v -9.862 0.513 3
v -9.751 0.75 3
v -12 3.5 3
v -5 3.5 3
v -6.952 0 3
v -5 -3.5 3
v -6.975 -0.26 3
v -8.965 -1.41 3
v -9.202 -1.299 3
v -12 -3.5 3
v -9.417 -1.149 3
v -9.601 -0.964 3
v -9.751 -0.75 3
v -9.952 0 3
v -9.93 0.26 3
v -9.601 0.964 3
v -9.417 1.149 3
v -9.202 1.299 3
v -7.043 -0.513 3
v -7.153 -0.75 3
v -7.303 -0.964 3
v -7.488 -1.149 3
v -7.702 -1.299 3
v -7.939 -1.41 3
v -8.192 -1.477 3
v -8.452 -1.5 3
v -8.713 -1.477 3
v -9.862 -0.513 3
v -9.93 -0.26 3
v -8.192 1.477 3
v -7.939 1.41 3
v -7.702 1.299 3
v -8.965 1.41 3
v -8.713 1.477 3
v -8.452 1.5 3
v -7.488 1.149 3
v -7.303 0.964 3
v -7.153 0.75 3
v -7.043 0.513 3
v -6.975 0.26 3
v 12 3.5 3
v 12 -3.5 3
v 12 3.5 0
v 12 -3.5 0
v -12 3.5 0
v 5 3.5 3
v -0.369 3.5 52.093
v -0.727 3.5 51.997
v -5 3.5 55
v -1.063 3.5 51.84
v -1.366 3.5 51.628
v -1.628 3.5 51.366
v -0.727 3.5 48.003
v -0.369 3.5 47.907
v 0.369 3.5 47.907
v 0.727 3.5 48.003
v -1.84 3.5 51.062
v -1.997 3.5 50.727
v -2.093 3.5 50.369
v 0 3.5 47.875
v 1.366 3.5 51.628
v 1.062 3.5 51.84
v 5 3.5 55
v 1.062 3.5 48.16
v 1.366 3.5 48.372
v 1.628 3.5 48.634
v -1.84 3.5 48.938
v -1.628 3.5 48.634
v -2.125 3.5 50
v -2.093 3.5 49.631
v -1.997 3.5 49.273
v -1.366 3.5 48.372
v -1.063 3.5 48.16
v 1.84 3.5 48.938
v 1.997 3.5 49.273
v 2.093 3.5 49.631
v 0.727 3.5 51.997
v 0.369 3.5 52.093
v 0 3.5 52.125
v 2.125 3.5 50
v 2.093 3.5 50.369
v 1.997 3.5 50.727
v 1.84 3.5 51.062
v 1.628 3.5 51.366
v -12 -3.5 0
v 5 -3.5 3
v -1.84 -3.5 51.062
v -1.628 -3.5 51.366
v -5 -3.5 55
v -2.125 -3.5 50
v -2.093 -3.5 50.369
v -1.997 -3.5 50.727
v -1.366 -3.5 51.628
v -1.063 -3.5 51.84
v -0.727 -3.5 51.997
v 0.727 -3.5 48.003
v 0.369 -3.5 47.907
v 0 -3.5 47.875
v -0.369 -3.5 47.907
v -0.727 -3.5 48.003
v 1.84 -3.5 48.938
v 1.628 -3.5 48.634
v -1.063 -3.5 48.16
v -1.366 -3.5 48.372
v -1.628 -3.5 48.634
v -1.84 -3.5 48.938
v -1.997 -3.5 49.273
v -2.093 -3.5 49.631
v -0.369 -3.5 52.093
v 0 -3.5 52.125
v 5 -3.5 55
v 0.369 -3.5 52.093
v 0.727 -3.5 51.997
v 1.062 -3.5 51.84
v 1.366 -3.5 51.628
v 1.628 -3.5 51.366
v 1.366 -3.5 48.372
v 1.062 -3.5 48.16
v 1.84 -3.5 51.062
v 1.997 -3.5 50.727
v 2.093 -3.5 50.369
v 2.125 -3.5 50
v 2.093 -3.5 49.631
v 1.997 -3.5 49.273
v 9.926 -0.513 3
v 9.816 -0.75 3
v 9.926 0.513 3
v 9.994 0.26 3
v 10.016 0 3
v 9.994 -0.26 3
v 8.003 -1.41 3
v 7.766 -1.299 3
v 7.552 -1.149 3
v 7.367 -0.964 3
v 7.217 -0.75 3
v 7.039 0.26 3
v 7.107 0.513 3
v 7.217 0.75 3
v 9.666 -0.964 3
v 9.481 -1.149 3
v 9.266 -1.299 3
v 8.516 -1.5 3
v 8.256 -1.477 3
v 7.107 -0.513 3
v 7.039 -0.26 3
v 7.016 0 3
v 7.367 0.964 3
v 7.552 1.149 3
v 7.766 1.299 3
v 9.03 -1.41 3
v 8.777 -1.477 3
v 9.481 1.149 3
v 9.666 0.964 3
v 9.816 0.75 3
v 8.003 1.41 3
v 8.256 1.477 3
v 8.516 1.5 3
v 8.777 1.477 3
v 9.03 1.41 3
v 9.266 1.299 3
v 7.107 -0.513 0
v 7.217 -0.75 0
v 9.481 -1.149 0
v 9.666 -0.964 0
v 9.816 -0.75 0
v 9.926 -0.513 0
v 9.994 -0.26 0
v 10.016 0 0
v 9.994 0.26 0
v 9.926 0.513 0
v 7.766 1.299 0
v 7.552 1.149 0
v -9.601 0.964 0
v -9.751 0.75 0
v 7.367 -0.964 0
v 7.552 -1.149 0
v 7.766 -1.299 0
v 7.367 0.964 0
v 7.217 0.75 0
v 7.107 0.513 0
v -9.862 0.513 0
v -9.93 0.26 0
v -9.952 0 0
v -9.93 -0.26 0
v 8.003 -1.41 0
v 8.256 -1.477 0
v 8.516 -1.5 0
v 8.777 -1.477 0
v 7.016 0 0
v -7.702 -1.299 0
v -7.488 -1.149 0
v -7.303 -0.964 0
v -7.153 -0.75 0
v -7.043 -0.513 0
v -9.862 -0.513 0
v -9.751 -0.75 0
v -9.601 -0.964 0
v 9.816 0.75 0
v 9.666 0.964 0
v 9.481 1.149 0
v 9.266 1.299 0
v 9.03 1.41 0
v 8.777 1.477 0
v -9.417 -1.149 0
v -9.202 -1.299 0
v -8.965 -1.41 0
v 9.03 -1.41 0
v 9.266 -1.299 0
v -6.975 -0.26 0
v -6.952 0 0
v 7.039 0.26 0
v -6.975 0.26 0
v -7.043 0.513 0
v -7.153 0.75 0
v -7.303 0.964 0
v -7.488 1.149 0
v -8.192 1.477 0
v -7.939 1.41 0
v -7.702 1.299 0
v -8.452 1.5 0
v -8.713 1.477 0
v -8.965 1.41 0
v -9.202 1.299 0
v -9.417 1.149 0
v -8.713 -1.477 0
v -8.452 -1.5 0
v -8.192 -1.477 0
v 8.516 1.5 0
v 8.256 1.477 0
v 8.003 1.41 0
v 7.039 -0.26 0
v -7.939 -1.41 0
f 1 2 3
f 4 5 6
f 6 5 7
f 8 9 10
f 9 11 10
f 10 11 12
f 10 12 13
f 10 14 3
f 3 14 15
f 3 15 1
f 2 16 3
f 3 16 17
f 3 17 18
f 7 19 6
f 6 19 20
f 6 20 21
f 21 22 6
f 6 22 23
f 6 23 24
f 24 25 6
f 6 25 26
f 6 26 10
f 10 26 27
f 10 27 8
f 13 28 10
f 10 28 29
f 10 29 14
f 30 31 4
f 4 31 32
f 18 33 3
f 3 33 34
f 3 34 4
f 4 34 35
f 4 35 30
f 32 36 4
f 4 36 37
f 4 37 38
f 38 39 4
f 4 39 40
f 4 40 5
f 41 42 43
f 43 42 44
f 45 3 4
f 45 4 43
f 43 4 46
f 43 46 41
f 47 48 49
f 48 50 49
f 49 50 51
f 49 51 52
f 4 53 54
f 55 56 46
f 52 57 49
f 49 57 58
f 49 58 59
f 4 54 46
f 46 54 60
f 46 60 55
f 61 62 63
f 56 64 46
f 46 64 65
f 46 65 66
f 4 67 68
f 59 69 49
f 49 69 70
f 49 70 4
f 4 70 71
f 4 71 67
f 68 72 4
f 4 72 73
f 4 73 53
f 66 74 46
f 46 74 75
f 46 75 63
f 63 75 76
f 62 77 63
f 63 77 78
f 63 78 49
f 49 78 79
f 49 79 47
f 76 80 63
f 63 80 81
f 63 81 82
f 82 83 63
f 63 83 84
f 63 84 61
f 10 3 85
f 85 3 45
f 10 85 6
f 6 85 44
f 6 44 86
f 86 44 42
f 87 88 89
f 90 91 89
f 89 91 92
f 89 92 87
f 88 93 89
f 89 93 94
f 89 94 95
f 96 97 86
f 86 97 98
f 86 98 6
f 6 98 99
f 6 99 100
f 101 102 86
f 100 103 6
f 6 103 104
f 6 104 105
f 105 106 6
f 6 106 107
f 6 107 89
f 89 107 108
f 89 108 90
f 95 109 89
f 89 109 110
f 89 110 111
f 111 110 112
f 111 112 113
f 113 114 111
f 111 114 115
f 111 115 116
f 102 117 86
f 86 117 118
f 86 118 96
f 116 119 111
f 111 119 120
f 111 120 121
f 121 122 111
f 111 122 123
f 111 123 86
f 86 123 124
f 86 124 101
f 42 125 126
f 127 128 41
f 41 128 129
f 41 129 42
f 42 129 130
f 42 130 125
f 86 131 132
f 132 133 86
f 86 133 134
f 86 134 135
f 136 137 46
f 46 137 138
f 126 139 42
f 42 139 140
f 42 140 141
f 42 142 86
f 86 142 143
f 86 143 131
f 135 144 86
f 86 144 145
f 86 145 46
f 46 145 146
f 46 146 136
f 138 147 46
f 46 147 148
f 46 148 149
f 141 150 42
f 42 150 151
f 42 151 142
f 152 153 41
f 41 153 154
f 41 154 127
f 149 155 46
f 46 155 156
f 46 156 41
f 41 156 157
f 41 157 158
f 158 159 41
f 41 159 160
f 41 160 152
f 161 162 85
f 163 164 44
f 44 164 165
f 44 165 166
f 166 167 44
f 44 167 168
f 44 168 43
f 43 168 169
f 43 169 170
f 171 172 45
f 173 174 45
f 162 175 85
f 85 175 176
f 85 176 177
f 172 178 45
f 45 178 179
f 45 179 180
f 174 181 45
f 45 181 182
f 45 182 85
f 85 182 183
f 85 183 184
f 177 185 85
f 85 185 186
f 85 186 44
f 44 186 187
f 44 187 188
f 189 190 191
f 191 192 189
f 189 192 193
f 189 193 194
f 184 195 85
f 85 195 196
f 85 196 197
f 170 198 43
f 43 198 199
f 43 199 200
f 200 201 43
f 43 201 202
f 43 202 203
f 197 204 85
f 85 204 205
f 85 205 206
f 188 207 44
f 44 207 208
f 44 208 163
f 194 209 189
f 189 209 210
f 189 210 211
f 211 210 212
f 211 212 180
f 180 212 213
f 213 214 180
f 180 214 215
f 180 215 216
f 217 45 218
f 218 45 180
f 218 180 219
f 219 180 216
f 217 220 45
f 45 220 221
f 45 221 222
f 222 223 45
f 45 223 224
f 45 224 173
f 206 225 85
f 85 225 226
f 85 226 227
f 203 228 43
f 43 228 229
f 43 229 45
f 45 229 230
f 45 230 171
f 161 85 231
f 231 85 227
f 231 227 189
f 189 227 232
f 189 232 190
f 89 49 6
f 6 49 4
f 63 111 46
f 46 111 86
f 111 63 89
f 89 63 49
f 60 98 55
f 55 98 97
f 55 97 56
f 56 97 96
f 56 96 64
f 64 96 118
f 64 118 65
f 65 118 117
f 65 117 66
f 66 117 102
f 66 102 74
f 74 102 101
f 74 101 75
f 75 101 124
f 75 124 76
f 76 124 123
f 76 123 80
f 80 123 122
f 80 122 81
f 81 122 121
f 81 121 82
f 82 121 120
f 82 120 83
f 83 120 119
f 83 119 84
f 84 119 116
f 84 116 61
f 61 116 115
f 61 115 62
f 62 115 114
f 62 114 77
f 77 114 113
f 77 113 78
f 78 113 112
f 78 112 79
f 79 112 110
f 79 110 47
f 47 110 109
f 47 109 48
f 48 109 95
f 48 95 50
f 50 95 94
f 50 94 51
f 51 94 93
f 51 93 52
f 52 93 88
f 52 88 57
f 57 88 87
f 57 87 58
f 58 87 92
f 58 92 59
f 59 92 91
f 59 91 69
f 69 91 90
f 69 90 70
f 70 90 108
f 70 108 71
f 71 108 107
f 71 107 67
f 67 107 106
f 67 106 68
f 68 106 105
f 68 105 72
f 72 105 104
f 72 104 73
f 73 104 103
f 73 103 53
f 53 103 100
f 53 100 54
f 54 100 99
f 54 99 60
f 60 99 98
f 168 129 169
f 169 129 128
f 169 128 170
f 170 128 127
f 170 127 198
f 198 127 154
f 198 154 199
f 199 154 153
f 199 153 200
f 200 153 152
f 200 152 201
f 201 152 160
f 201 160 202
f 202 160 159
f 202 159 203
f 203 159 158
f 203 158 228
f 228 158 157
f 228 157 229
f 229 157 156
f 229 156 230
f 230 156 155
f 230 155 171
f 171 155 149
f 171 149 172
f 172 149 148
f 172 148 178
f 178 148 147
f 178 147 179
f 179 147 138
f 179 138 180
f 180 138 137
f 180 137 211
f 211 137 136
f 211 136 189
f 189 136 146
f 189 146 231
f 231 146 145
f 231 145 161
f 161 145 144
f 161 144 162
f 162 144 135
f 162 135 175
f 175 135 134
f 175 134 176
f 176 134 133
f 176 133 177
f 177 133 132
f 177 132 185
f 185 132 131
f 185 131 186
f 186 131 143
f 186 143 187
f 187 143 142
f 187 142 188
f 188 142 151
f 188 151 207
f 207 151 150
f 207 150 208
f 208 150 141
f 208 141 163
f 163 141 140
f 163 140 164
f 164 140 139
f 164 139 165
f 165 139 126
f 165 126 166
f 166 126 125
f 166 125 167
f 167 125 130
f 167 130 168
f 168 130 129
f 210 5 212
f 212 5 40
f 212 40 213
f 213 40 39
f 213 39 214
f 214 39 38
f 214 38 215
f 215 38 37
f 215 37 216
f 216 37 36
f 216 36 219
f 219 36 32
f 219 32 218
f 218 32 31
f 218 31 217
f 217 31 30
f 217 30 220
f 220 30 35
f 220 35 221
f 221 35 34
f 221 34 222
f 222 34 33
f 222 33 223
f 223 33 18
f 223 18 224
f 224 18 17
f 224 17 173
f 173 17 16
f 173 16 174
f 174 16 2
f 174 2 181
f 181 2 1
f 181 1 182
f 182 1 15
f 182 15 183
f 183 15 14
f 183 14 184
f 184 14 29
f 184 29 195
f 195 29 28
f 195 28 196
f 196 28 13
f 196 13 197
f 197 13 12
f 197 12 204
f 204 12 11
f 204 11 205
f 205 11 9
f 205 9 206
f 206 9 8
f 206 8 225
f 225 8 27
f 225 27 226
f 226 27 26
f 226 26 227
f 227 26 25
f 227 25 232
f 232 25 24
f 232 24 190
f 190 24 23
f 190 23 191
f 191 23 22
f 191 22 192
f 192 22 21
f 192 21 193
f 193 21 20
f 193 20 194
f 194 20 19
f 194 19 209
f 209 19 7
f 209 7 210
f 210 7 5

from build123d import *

# Parameters (mm, degrees)
SKETCH_1_W          = 24
SKETCH_1_H          = 7
EXTRUDE_2_DEPTH     = 3
SKETCH_3_W          = 10
SKETCH_3_H          = 7
EXTRUDE_4_DEPTH     = 52
SKETCH_5_R          = 2.125
CUT_EXTRUDE_1_DEPTH = 7
SKETCH_6_R          = 1.5
CUT_EXTRUDE_2_DEPTH = 3
SKETCH_7_R          = 1.5
CUT_EXTRUDE_3_DEPTH = 3


with BuildPart() as part:
    # Эскиз1 → Бобышка-Вытянуть2 (new body)
    with BuildSketch(Plane.XY):
        Rectangle(SKETCH_1_W, SKETCH_1_H)
    extrude(amount=EXTRUDE_2_DEPTH)

    # Эскиз3 → Бобышка-Вытянуть4 (add)
    with BuildSketch(Plane.XY.offset(3)):
        Rectangle(SKETCH_3_W, SKETCH_3_H)
    extrude(amount=EXTRUDE_4_DEPTH)

    # Эскиз5 → Вырез-Вытянуть1 (cut)
    with BuildSketch(Plane(origin=(0, -3.5, 0), x_dir=(-1, 0, 0), z_dir=(0, -1, 0))):
        with Locations((0, -50)):
            Circle(SKETCH_5_R)
    extrude(amount=-CUT_EXTRUDE_1_DEPTH, mode=Mode.SUBTRACT)

    # Эскиз6 → Вырез-Вытянуть2 (cut)
    with BuildSketch(Plane.XY.offset(3)):
        with Locations((8.516484568, 0)):
            Circle(SKETCH_6_R)
    extrude(amount=-CUT_EXTRUDE_2_DEPTH, mode=Mode.SUBTRACT)

    # Эскиз7 → Вырез-Вытянуть3 (cut)
    with BuildSketch(Plane.XY.offset(3)):
        with Locations((-8.452342131, 0)):
            Circle(SKETCH_7_R)
    extrude(amount=-CUT_EXTRUDE_3_DEPTH, mode=Mode.SUBTRACT)


solid = part.part
